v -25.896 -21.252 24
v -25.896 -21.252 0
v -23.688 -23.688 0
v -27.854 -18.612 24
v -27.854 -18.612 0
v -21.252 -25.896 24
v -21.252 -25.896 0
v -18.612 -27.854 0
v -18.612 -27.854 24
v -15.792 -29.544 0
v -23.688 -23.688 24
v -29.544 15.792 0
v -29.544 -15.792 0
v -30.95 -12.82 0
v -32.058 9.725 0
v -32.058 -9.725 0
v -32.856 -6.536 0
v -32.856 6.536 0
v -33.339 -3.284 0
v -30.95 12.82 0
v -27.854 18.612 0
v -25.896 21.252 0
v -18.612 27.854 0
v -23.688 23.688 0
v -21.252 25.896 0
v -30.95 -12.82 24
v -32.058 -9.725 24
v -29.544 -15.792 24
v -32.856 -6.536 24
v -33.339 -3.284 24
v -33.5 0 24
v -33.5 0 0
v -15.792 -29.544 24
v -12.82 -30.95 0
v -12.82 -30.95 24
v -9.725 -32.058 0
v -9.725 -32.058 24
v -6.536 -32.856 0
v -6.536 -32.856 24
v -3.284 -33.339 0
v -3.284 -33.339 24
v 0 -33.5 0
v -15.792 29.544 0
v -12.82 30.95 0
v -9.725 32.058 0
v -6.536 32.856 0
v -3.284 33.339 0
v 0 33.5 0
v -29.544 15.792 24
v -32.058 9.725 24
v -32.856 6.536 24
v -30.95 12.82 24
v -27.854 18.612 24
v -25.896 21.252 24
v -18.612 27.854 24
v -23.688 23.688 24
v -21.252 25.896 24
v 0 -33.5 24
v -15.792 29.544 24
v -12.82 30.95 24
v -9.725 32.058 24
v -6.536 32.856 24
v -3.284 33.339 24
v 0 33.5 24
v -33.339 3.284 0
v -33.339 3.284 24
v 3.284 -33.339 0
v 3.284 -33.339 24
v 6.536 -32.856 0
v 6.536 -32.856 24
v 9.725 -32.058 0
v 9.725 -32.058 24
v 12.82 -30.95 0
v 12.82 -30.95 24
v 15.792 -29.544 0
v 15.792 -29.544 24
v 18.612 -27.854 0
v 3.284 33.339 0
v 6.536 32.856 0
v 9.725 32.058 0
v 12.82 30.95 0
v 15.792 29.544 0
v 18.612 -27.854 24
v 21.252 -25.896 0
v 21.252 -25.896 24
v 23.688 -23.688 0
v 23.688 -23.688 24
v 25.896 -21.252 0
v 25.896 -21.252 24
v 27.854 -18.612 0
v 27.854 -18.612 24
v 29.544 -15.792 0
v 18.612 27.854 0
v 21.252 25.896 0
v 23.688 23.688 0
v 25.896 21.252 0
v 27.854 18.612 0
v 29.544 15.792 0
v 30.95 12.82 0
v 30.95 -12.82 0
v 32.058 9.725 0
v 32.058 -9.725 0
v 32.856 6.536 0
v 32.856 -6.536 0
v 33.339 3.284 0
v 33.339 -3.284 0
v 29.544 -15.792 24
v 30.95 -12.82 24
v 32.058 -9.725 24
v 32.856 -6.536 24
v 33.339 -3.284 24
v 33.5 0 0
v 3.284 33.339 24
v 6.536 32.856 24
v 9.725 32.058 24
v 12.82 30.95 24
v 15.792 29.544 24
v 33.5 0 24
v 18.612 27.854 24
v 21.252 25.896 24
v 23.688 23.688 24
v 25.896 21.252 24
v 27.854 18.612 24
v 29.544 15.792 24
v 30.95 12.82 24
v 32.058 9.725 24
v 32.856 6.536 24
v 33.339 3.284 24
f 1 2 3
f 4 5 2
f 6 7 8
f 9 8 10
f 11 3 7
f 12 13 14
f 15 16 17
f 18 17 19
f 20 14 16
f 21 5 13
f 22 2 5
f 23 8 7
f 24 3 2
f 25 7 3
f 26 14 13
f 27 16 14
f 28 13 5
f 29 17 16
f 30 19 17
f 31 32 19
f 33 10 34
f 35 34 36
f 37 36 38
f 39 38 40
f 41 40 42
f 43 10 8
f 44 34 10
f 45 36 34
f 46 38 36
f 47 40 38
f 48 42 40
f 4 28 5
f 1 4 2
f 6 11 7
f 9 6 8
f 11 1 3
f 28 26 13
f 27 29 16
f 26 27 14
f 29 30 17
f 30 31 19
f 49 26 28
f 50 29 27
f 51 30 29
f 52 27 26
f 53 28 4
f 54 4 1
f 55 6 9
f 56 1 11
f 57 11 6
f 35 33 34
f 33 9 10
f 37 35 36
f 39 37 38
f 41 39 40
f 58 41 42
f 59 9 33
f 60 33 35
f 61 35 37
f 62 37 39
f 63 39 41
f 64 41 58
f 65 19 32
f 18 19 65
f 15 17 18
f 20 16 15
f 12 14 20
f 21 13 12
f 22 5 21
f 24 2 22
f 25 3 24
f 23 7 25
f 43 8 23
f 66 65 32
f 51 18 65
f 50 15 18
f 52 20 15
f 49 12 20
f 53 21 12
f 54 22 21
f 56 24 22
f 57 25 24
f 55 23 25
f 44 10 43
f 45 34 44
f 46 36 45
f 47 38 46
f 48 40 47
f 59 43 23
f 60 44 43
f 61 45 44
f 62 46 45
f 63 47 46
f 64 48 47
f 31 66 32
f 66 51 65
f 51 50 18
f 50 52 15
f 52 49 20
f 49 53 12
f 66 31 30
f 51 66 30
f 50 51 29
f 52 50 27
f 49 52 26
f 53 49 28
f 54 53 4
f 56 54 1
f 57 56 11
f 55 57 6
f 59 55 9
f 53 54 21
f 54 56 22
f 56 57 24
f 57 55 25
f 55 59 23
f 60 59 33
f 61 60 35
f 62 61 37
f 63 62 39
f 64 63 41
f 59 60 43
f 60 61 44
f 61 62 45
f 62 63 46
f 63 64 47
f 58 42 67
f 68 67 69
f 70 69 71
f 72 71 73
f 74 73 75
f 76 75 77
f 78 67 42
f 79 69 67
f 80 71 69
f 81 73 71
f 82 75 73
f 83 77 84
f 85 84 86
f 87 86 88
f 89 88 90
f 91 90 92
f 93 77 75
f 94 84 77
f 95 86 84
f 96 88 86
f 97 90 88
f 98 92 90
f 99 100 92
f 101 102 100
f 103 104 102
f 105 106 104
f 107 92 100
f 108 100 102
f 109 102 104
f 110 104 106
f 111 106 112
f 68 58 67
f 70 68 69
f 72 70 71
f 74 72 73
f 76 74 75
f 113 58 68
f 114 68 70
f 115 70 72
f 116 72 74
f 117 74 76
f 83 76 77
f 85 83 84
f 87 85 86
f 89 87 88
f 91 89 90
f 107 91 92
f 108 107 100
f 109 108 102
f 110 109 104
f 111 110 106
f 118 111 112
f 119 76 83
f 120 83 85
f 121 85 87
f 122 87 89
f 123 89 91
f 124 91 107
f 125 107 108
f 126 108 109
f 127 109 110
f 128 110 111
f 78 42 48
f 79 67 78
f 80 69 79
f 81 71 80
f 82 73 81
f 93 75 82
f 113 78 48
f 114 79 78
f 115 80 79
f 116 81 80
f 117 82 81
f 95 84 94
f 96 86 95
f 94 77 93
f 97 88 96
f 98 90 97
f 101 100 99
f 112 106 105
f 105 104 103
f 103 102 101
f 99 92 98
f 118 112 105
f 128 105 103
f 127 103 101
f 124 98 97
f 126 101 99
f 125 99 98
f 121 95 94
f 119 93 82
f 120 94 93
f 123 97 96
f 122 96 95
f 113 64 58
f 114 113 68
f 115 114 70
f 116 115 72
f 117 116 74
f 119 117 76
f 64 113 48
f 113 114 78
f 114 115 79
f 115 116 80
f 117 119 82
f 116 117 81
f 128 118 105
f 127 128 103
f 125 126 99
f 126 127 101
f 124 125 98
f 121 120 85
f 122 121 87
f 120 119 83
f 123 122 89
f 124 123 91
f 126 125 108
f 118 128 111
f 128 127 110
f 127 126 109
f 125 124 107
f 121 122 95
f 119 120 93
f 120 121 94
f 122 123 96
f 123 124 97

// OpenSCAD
// OLFA DC-3 blade disposal can
// Round body approximation using OLFA's overall length and thickness. The sliding door and rim details are omitted.
// Units: mm
$fn = 64;
union() {
    translate([0, 0, 0]) rotate([0, 0, 0])
        cylinder(h=24, r1=33.5, r2=33.5, $fn=64);
}
